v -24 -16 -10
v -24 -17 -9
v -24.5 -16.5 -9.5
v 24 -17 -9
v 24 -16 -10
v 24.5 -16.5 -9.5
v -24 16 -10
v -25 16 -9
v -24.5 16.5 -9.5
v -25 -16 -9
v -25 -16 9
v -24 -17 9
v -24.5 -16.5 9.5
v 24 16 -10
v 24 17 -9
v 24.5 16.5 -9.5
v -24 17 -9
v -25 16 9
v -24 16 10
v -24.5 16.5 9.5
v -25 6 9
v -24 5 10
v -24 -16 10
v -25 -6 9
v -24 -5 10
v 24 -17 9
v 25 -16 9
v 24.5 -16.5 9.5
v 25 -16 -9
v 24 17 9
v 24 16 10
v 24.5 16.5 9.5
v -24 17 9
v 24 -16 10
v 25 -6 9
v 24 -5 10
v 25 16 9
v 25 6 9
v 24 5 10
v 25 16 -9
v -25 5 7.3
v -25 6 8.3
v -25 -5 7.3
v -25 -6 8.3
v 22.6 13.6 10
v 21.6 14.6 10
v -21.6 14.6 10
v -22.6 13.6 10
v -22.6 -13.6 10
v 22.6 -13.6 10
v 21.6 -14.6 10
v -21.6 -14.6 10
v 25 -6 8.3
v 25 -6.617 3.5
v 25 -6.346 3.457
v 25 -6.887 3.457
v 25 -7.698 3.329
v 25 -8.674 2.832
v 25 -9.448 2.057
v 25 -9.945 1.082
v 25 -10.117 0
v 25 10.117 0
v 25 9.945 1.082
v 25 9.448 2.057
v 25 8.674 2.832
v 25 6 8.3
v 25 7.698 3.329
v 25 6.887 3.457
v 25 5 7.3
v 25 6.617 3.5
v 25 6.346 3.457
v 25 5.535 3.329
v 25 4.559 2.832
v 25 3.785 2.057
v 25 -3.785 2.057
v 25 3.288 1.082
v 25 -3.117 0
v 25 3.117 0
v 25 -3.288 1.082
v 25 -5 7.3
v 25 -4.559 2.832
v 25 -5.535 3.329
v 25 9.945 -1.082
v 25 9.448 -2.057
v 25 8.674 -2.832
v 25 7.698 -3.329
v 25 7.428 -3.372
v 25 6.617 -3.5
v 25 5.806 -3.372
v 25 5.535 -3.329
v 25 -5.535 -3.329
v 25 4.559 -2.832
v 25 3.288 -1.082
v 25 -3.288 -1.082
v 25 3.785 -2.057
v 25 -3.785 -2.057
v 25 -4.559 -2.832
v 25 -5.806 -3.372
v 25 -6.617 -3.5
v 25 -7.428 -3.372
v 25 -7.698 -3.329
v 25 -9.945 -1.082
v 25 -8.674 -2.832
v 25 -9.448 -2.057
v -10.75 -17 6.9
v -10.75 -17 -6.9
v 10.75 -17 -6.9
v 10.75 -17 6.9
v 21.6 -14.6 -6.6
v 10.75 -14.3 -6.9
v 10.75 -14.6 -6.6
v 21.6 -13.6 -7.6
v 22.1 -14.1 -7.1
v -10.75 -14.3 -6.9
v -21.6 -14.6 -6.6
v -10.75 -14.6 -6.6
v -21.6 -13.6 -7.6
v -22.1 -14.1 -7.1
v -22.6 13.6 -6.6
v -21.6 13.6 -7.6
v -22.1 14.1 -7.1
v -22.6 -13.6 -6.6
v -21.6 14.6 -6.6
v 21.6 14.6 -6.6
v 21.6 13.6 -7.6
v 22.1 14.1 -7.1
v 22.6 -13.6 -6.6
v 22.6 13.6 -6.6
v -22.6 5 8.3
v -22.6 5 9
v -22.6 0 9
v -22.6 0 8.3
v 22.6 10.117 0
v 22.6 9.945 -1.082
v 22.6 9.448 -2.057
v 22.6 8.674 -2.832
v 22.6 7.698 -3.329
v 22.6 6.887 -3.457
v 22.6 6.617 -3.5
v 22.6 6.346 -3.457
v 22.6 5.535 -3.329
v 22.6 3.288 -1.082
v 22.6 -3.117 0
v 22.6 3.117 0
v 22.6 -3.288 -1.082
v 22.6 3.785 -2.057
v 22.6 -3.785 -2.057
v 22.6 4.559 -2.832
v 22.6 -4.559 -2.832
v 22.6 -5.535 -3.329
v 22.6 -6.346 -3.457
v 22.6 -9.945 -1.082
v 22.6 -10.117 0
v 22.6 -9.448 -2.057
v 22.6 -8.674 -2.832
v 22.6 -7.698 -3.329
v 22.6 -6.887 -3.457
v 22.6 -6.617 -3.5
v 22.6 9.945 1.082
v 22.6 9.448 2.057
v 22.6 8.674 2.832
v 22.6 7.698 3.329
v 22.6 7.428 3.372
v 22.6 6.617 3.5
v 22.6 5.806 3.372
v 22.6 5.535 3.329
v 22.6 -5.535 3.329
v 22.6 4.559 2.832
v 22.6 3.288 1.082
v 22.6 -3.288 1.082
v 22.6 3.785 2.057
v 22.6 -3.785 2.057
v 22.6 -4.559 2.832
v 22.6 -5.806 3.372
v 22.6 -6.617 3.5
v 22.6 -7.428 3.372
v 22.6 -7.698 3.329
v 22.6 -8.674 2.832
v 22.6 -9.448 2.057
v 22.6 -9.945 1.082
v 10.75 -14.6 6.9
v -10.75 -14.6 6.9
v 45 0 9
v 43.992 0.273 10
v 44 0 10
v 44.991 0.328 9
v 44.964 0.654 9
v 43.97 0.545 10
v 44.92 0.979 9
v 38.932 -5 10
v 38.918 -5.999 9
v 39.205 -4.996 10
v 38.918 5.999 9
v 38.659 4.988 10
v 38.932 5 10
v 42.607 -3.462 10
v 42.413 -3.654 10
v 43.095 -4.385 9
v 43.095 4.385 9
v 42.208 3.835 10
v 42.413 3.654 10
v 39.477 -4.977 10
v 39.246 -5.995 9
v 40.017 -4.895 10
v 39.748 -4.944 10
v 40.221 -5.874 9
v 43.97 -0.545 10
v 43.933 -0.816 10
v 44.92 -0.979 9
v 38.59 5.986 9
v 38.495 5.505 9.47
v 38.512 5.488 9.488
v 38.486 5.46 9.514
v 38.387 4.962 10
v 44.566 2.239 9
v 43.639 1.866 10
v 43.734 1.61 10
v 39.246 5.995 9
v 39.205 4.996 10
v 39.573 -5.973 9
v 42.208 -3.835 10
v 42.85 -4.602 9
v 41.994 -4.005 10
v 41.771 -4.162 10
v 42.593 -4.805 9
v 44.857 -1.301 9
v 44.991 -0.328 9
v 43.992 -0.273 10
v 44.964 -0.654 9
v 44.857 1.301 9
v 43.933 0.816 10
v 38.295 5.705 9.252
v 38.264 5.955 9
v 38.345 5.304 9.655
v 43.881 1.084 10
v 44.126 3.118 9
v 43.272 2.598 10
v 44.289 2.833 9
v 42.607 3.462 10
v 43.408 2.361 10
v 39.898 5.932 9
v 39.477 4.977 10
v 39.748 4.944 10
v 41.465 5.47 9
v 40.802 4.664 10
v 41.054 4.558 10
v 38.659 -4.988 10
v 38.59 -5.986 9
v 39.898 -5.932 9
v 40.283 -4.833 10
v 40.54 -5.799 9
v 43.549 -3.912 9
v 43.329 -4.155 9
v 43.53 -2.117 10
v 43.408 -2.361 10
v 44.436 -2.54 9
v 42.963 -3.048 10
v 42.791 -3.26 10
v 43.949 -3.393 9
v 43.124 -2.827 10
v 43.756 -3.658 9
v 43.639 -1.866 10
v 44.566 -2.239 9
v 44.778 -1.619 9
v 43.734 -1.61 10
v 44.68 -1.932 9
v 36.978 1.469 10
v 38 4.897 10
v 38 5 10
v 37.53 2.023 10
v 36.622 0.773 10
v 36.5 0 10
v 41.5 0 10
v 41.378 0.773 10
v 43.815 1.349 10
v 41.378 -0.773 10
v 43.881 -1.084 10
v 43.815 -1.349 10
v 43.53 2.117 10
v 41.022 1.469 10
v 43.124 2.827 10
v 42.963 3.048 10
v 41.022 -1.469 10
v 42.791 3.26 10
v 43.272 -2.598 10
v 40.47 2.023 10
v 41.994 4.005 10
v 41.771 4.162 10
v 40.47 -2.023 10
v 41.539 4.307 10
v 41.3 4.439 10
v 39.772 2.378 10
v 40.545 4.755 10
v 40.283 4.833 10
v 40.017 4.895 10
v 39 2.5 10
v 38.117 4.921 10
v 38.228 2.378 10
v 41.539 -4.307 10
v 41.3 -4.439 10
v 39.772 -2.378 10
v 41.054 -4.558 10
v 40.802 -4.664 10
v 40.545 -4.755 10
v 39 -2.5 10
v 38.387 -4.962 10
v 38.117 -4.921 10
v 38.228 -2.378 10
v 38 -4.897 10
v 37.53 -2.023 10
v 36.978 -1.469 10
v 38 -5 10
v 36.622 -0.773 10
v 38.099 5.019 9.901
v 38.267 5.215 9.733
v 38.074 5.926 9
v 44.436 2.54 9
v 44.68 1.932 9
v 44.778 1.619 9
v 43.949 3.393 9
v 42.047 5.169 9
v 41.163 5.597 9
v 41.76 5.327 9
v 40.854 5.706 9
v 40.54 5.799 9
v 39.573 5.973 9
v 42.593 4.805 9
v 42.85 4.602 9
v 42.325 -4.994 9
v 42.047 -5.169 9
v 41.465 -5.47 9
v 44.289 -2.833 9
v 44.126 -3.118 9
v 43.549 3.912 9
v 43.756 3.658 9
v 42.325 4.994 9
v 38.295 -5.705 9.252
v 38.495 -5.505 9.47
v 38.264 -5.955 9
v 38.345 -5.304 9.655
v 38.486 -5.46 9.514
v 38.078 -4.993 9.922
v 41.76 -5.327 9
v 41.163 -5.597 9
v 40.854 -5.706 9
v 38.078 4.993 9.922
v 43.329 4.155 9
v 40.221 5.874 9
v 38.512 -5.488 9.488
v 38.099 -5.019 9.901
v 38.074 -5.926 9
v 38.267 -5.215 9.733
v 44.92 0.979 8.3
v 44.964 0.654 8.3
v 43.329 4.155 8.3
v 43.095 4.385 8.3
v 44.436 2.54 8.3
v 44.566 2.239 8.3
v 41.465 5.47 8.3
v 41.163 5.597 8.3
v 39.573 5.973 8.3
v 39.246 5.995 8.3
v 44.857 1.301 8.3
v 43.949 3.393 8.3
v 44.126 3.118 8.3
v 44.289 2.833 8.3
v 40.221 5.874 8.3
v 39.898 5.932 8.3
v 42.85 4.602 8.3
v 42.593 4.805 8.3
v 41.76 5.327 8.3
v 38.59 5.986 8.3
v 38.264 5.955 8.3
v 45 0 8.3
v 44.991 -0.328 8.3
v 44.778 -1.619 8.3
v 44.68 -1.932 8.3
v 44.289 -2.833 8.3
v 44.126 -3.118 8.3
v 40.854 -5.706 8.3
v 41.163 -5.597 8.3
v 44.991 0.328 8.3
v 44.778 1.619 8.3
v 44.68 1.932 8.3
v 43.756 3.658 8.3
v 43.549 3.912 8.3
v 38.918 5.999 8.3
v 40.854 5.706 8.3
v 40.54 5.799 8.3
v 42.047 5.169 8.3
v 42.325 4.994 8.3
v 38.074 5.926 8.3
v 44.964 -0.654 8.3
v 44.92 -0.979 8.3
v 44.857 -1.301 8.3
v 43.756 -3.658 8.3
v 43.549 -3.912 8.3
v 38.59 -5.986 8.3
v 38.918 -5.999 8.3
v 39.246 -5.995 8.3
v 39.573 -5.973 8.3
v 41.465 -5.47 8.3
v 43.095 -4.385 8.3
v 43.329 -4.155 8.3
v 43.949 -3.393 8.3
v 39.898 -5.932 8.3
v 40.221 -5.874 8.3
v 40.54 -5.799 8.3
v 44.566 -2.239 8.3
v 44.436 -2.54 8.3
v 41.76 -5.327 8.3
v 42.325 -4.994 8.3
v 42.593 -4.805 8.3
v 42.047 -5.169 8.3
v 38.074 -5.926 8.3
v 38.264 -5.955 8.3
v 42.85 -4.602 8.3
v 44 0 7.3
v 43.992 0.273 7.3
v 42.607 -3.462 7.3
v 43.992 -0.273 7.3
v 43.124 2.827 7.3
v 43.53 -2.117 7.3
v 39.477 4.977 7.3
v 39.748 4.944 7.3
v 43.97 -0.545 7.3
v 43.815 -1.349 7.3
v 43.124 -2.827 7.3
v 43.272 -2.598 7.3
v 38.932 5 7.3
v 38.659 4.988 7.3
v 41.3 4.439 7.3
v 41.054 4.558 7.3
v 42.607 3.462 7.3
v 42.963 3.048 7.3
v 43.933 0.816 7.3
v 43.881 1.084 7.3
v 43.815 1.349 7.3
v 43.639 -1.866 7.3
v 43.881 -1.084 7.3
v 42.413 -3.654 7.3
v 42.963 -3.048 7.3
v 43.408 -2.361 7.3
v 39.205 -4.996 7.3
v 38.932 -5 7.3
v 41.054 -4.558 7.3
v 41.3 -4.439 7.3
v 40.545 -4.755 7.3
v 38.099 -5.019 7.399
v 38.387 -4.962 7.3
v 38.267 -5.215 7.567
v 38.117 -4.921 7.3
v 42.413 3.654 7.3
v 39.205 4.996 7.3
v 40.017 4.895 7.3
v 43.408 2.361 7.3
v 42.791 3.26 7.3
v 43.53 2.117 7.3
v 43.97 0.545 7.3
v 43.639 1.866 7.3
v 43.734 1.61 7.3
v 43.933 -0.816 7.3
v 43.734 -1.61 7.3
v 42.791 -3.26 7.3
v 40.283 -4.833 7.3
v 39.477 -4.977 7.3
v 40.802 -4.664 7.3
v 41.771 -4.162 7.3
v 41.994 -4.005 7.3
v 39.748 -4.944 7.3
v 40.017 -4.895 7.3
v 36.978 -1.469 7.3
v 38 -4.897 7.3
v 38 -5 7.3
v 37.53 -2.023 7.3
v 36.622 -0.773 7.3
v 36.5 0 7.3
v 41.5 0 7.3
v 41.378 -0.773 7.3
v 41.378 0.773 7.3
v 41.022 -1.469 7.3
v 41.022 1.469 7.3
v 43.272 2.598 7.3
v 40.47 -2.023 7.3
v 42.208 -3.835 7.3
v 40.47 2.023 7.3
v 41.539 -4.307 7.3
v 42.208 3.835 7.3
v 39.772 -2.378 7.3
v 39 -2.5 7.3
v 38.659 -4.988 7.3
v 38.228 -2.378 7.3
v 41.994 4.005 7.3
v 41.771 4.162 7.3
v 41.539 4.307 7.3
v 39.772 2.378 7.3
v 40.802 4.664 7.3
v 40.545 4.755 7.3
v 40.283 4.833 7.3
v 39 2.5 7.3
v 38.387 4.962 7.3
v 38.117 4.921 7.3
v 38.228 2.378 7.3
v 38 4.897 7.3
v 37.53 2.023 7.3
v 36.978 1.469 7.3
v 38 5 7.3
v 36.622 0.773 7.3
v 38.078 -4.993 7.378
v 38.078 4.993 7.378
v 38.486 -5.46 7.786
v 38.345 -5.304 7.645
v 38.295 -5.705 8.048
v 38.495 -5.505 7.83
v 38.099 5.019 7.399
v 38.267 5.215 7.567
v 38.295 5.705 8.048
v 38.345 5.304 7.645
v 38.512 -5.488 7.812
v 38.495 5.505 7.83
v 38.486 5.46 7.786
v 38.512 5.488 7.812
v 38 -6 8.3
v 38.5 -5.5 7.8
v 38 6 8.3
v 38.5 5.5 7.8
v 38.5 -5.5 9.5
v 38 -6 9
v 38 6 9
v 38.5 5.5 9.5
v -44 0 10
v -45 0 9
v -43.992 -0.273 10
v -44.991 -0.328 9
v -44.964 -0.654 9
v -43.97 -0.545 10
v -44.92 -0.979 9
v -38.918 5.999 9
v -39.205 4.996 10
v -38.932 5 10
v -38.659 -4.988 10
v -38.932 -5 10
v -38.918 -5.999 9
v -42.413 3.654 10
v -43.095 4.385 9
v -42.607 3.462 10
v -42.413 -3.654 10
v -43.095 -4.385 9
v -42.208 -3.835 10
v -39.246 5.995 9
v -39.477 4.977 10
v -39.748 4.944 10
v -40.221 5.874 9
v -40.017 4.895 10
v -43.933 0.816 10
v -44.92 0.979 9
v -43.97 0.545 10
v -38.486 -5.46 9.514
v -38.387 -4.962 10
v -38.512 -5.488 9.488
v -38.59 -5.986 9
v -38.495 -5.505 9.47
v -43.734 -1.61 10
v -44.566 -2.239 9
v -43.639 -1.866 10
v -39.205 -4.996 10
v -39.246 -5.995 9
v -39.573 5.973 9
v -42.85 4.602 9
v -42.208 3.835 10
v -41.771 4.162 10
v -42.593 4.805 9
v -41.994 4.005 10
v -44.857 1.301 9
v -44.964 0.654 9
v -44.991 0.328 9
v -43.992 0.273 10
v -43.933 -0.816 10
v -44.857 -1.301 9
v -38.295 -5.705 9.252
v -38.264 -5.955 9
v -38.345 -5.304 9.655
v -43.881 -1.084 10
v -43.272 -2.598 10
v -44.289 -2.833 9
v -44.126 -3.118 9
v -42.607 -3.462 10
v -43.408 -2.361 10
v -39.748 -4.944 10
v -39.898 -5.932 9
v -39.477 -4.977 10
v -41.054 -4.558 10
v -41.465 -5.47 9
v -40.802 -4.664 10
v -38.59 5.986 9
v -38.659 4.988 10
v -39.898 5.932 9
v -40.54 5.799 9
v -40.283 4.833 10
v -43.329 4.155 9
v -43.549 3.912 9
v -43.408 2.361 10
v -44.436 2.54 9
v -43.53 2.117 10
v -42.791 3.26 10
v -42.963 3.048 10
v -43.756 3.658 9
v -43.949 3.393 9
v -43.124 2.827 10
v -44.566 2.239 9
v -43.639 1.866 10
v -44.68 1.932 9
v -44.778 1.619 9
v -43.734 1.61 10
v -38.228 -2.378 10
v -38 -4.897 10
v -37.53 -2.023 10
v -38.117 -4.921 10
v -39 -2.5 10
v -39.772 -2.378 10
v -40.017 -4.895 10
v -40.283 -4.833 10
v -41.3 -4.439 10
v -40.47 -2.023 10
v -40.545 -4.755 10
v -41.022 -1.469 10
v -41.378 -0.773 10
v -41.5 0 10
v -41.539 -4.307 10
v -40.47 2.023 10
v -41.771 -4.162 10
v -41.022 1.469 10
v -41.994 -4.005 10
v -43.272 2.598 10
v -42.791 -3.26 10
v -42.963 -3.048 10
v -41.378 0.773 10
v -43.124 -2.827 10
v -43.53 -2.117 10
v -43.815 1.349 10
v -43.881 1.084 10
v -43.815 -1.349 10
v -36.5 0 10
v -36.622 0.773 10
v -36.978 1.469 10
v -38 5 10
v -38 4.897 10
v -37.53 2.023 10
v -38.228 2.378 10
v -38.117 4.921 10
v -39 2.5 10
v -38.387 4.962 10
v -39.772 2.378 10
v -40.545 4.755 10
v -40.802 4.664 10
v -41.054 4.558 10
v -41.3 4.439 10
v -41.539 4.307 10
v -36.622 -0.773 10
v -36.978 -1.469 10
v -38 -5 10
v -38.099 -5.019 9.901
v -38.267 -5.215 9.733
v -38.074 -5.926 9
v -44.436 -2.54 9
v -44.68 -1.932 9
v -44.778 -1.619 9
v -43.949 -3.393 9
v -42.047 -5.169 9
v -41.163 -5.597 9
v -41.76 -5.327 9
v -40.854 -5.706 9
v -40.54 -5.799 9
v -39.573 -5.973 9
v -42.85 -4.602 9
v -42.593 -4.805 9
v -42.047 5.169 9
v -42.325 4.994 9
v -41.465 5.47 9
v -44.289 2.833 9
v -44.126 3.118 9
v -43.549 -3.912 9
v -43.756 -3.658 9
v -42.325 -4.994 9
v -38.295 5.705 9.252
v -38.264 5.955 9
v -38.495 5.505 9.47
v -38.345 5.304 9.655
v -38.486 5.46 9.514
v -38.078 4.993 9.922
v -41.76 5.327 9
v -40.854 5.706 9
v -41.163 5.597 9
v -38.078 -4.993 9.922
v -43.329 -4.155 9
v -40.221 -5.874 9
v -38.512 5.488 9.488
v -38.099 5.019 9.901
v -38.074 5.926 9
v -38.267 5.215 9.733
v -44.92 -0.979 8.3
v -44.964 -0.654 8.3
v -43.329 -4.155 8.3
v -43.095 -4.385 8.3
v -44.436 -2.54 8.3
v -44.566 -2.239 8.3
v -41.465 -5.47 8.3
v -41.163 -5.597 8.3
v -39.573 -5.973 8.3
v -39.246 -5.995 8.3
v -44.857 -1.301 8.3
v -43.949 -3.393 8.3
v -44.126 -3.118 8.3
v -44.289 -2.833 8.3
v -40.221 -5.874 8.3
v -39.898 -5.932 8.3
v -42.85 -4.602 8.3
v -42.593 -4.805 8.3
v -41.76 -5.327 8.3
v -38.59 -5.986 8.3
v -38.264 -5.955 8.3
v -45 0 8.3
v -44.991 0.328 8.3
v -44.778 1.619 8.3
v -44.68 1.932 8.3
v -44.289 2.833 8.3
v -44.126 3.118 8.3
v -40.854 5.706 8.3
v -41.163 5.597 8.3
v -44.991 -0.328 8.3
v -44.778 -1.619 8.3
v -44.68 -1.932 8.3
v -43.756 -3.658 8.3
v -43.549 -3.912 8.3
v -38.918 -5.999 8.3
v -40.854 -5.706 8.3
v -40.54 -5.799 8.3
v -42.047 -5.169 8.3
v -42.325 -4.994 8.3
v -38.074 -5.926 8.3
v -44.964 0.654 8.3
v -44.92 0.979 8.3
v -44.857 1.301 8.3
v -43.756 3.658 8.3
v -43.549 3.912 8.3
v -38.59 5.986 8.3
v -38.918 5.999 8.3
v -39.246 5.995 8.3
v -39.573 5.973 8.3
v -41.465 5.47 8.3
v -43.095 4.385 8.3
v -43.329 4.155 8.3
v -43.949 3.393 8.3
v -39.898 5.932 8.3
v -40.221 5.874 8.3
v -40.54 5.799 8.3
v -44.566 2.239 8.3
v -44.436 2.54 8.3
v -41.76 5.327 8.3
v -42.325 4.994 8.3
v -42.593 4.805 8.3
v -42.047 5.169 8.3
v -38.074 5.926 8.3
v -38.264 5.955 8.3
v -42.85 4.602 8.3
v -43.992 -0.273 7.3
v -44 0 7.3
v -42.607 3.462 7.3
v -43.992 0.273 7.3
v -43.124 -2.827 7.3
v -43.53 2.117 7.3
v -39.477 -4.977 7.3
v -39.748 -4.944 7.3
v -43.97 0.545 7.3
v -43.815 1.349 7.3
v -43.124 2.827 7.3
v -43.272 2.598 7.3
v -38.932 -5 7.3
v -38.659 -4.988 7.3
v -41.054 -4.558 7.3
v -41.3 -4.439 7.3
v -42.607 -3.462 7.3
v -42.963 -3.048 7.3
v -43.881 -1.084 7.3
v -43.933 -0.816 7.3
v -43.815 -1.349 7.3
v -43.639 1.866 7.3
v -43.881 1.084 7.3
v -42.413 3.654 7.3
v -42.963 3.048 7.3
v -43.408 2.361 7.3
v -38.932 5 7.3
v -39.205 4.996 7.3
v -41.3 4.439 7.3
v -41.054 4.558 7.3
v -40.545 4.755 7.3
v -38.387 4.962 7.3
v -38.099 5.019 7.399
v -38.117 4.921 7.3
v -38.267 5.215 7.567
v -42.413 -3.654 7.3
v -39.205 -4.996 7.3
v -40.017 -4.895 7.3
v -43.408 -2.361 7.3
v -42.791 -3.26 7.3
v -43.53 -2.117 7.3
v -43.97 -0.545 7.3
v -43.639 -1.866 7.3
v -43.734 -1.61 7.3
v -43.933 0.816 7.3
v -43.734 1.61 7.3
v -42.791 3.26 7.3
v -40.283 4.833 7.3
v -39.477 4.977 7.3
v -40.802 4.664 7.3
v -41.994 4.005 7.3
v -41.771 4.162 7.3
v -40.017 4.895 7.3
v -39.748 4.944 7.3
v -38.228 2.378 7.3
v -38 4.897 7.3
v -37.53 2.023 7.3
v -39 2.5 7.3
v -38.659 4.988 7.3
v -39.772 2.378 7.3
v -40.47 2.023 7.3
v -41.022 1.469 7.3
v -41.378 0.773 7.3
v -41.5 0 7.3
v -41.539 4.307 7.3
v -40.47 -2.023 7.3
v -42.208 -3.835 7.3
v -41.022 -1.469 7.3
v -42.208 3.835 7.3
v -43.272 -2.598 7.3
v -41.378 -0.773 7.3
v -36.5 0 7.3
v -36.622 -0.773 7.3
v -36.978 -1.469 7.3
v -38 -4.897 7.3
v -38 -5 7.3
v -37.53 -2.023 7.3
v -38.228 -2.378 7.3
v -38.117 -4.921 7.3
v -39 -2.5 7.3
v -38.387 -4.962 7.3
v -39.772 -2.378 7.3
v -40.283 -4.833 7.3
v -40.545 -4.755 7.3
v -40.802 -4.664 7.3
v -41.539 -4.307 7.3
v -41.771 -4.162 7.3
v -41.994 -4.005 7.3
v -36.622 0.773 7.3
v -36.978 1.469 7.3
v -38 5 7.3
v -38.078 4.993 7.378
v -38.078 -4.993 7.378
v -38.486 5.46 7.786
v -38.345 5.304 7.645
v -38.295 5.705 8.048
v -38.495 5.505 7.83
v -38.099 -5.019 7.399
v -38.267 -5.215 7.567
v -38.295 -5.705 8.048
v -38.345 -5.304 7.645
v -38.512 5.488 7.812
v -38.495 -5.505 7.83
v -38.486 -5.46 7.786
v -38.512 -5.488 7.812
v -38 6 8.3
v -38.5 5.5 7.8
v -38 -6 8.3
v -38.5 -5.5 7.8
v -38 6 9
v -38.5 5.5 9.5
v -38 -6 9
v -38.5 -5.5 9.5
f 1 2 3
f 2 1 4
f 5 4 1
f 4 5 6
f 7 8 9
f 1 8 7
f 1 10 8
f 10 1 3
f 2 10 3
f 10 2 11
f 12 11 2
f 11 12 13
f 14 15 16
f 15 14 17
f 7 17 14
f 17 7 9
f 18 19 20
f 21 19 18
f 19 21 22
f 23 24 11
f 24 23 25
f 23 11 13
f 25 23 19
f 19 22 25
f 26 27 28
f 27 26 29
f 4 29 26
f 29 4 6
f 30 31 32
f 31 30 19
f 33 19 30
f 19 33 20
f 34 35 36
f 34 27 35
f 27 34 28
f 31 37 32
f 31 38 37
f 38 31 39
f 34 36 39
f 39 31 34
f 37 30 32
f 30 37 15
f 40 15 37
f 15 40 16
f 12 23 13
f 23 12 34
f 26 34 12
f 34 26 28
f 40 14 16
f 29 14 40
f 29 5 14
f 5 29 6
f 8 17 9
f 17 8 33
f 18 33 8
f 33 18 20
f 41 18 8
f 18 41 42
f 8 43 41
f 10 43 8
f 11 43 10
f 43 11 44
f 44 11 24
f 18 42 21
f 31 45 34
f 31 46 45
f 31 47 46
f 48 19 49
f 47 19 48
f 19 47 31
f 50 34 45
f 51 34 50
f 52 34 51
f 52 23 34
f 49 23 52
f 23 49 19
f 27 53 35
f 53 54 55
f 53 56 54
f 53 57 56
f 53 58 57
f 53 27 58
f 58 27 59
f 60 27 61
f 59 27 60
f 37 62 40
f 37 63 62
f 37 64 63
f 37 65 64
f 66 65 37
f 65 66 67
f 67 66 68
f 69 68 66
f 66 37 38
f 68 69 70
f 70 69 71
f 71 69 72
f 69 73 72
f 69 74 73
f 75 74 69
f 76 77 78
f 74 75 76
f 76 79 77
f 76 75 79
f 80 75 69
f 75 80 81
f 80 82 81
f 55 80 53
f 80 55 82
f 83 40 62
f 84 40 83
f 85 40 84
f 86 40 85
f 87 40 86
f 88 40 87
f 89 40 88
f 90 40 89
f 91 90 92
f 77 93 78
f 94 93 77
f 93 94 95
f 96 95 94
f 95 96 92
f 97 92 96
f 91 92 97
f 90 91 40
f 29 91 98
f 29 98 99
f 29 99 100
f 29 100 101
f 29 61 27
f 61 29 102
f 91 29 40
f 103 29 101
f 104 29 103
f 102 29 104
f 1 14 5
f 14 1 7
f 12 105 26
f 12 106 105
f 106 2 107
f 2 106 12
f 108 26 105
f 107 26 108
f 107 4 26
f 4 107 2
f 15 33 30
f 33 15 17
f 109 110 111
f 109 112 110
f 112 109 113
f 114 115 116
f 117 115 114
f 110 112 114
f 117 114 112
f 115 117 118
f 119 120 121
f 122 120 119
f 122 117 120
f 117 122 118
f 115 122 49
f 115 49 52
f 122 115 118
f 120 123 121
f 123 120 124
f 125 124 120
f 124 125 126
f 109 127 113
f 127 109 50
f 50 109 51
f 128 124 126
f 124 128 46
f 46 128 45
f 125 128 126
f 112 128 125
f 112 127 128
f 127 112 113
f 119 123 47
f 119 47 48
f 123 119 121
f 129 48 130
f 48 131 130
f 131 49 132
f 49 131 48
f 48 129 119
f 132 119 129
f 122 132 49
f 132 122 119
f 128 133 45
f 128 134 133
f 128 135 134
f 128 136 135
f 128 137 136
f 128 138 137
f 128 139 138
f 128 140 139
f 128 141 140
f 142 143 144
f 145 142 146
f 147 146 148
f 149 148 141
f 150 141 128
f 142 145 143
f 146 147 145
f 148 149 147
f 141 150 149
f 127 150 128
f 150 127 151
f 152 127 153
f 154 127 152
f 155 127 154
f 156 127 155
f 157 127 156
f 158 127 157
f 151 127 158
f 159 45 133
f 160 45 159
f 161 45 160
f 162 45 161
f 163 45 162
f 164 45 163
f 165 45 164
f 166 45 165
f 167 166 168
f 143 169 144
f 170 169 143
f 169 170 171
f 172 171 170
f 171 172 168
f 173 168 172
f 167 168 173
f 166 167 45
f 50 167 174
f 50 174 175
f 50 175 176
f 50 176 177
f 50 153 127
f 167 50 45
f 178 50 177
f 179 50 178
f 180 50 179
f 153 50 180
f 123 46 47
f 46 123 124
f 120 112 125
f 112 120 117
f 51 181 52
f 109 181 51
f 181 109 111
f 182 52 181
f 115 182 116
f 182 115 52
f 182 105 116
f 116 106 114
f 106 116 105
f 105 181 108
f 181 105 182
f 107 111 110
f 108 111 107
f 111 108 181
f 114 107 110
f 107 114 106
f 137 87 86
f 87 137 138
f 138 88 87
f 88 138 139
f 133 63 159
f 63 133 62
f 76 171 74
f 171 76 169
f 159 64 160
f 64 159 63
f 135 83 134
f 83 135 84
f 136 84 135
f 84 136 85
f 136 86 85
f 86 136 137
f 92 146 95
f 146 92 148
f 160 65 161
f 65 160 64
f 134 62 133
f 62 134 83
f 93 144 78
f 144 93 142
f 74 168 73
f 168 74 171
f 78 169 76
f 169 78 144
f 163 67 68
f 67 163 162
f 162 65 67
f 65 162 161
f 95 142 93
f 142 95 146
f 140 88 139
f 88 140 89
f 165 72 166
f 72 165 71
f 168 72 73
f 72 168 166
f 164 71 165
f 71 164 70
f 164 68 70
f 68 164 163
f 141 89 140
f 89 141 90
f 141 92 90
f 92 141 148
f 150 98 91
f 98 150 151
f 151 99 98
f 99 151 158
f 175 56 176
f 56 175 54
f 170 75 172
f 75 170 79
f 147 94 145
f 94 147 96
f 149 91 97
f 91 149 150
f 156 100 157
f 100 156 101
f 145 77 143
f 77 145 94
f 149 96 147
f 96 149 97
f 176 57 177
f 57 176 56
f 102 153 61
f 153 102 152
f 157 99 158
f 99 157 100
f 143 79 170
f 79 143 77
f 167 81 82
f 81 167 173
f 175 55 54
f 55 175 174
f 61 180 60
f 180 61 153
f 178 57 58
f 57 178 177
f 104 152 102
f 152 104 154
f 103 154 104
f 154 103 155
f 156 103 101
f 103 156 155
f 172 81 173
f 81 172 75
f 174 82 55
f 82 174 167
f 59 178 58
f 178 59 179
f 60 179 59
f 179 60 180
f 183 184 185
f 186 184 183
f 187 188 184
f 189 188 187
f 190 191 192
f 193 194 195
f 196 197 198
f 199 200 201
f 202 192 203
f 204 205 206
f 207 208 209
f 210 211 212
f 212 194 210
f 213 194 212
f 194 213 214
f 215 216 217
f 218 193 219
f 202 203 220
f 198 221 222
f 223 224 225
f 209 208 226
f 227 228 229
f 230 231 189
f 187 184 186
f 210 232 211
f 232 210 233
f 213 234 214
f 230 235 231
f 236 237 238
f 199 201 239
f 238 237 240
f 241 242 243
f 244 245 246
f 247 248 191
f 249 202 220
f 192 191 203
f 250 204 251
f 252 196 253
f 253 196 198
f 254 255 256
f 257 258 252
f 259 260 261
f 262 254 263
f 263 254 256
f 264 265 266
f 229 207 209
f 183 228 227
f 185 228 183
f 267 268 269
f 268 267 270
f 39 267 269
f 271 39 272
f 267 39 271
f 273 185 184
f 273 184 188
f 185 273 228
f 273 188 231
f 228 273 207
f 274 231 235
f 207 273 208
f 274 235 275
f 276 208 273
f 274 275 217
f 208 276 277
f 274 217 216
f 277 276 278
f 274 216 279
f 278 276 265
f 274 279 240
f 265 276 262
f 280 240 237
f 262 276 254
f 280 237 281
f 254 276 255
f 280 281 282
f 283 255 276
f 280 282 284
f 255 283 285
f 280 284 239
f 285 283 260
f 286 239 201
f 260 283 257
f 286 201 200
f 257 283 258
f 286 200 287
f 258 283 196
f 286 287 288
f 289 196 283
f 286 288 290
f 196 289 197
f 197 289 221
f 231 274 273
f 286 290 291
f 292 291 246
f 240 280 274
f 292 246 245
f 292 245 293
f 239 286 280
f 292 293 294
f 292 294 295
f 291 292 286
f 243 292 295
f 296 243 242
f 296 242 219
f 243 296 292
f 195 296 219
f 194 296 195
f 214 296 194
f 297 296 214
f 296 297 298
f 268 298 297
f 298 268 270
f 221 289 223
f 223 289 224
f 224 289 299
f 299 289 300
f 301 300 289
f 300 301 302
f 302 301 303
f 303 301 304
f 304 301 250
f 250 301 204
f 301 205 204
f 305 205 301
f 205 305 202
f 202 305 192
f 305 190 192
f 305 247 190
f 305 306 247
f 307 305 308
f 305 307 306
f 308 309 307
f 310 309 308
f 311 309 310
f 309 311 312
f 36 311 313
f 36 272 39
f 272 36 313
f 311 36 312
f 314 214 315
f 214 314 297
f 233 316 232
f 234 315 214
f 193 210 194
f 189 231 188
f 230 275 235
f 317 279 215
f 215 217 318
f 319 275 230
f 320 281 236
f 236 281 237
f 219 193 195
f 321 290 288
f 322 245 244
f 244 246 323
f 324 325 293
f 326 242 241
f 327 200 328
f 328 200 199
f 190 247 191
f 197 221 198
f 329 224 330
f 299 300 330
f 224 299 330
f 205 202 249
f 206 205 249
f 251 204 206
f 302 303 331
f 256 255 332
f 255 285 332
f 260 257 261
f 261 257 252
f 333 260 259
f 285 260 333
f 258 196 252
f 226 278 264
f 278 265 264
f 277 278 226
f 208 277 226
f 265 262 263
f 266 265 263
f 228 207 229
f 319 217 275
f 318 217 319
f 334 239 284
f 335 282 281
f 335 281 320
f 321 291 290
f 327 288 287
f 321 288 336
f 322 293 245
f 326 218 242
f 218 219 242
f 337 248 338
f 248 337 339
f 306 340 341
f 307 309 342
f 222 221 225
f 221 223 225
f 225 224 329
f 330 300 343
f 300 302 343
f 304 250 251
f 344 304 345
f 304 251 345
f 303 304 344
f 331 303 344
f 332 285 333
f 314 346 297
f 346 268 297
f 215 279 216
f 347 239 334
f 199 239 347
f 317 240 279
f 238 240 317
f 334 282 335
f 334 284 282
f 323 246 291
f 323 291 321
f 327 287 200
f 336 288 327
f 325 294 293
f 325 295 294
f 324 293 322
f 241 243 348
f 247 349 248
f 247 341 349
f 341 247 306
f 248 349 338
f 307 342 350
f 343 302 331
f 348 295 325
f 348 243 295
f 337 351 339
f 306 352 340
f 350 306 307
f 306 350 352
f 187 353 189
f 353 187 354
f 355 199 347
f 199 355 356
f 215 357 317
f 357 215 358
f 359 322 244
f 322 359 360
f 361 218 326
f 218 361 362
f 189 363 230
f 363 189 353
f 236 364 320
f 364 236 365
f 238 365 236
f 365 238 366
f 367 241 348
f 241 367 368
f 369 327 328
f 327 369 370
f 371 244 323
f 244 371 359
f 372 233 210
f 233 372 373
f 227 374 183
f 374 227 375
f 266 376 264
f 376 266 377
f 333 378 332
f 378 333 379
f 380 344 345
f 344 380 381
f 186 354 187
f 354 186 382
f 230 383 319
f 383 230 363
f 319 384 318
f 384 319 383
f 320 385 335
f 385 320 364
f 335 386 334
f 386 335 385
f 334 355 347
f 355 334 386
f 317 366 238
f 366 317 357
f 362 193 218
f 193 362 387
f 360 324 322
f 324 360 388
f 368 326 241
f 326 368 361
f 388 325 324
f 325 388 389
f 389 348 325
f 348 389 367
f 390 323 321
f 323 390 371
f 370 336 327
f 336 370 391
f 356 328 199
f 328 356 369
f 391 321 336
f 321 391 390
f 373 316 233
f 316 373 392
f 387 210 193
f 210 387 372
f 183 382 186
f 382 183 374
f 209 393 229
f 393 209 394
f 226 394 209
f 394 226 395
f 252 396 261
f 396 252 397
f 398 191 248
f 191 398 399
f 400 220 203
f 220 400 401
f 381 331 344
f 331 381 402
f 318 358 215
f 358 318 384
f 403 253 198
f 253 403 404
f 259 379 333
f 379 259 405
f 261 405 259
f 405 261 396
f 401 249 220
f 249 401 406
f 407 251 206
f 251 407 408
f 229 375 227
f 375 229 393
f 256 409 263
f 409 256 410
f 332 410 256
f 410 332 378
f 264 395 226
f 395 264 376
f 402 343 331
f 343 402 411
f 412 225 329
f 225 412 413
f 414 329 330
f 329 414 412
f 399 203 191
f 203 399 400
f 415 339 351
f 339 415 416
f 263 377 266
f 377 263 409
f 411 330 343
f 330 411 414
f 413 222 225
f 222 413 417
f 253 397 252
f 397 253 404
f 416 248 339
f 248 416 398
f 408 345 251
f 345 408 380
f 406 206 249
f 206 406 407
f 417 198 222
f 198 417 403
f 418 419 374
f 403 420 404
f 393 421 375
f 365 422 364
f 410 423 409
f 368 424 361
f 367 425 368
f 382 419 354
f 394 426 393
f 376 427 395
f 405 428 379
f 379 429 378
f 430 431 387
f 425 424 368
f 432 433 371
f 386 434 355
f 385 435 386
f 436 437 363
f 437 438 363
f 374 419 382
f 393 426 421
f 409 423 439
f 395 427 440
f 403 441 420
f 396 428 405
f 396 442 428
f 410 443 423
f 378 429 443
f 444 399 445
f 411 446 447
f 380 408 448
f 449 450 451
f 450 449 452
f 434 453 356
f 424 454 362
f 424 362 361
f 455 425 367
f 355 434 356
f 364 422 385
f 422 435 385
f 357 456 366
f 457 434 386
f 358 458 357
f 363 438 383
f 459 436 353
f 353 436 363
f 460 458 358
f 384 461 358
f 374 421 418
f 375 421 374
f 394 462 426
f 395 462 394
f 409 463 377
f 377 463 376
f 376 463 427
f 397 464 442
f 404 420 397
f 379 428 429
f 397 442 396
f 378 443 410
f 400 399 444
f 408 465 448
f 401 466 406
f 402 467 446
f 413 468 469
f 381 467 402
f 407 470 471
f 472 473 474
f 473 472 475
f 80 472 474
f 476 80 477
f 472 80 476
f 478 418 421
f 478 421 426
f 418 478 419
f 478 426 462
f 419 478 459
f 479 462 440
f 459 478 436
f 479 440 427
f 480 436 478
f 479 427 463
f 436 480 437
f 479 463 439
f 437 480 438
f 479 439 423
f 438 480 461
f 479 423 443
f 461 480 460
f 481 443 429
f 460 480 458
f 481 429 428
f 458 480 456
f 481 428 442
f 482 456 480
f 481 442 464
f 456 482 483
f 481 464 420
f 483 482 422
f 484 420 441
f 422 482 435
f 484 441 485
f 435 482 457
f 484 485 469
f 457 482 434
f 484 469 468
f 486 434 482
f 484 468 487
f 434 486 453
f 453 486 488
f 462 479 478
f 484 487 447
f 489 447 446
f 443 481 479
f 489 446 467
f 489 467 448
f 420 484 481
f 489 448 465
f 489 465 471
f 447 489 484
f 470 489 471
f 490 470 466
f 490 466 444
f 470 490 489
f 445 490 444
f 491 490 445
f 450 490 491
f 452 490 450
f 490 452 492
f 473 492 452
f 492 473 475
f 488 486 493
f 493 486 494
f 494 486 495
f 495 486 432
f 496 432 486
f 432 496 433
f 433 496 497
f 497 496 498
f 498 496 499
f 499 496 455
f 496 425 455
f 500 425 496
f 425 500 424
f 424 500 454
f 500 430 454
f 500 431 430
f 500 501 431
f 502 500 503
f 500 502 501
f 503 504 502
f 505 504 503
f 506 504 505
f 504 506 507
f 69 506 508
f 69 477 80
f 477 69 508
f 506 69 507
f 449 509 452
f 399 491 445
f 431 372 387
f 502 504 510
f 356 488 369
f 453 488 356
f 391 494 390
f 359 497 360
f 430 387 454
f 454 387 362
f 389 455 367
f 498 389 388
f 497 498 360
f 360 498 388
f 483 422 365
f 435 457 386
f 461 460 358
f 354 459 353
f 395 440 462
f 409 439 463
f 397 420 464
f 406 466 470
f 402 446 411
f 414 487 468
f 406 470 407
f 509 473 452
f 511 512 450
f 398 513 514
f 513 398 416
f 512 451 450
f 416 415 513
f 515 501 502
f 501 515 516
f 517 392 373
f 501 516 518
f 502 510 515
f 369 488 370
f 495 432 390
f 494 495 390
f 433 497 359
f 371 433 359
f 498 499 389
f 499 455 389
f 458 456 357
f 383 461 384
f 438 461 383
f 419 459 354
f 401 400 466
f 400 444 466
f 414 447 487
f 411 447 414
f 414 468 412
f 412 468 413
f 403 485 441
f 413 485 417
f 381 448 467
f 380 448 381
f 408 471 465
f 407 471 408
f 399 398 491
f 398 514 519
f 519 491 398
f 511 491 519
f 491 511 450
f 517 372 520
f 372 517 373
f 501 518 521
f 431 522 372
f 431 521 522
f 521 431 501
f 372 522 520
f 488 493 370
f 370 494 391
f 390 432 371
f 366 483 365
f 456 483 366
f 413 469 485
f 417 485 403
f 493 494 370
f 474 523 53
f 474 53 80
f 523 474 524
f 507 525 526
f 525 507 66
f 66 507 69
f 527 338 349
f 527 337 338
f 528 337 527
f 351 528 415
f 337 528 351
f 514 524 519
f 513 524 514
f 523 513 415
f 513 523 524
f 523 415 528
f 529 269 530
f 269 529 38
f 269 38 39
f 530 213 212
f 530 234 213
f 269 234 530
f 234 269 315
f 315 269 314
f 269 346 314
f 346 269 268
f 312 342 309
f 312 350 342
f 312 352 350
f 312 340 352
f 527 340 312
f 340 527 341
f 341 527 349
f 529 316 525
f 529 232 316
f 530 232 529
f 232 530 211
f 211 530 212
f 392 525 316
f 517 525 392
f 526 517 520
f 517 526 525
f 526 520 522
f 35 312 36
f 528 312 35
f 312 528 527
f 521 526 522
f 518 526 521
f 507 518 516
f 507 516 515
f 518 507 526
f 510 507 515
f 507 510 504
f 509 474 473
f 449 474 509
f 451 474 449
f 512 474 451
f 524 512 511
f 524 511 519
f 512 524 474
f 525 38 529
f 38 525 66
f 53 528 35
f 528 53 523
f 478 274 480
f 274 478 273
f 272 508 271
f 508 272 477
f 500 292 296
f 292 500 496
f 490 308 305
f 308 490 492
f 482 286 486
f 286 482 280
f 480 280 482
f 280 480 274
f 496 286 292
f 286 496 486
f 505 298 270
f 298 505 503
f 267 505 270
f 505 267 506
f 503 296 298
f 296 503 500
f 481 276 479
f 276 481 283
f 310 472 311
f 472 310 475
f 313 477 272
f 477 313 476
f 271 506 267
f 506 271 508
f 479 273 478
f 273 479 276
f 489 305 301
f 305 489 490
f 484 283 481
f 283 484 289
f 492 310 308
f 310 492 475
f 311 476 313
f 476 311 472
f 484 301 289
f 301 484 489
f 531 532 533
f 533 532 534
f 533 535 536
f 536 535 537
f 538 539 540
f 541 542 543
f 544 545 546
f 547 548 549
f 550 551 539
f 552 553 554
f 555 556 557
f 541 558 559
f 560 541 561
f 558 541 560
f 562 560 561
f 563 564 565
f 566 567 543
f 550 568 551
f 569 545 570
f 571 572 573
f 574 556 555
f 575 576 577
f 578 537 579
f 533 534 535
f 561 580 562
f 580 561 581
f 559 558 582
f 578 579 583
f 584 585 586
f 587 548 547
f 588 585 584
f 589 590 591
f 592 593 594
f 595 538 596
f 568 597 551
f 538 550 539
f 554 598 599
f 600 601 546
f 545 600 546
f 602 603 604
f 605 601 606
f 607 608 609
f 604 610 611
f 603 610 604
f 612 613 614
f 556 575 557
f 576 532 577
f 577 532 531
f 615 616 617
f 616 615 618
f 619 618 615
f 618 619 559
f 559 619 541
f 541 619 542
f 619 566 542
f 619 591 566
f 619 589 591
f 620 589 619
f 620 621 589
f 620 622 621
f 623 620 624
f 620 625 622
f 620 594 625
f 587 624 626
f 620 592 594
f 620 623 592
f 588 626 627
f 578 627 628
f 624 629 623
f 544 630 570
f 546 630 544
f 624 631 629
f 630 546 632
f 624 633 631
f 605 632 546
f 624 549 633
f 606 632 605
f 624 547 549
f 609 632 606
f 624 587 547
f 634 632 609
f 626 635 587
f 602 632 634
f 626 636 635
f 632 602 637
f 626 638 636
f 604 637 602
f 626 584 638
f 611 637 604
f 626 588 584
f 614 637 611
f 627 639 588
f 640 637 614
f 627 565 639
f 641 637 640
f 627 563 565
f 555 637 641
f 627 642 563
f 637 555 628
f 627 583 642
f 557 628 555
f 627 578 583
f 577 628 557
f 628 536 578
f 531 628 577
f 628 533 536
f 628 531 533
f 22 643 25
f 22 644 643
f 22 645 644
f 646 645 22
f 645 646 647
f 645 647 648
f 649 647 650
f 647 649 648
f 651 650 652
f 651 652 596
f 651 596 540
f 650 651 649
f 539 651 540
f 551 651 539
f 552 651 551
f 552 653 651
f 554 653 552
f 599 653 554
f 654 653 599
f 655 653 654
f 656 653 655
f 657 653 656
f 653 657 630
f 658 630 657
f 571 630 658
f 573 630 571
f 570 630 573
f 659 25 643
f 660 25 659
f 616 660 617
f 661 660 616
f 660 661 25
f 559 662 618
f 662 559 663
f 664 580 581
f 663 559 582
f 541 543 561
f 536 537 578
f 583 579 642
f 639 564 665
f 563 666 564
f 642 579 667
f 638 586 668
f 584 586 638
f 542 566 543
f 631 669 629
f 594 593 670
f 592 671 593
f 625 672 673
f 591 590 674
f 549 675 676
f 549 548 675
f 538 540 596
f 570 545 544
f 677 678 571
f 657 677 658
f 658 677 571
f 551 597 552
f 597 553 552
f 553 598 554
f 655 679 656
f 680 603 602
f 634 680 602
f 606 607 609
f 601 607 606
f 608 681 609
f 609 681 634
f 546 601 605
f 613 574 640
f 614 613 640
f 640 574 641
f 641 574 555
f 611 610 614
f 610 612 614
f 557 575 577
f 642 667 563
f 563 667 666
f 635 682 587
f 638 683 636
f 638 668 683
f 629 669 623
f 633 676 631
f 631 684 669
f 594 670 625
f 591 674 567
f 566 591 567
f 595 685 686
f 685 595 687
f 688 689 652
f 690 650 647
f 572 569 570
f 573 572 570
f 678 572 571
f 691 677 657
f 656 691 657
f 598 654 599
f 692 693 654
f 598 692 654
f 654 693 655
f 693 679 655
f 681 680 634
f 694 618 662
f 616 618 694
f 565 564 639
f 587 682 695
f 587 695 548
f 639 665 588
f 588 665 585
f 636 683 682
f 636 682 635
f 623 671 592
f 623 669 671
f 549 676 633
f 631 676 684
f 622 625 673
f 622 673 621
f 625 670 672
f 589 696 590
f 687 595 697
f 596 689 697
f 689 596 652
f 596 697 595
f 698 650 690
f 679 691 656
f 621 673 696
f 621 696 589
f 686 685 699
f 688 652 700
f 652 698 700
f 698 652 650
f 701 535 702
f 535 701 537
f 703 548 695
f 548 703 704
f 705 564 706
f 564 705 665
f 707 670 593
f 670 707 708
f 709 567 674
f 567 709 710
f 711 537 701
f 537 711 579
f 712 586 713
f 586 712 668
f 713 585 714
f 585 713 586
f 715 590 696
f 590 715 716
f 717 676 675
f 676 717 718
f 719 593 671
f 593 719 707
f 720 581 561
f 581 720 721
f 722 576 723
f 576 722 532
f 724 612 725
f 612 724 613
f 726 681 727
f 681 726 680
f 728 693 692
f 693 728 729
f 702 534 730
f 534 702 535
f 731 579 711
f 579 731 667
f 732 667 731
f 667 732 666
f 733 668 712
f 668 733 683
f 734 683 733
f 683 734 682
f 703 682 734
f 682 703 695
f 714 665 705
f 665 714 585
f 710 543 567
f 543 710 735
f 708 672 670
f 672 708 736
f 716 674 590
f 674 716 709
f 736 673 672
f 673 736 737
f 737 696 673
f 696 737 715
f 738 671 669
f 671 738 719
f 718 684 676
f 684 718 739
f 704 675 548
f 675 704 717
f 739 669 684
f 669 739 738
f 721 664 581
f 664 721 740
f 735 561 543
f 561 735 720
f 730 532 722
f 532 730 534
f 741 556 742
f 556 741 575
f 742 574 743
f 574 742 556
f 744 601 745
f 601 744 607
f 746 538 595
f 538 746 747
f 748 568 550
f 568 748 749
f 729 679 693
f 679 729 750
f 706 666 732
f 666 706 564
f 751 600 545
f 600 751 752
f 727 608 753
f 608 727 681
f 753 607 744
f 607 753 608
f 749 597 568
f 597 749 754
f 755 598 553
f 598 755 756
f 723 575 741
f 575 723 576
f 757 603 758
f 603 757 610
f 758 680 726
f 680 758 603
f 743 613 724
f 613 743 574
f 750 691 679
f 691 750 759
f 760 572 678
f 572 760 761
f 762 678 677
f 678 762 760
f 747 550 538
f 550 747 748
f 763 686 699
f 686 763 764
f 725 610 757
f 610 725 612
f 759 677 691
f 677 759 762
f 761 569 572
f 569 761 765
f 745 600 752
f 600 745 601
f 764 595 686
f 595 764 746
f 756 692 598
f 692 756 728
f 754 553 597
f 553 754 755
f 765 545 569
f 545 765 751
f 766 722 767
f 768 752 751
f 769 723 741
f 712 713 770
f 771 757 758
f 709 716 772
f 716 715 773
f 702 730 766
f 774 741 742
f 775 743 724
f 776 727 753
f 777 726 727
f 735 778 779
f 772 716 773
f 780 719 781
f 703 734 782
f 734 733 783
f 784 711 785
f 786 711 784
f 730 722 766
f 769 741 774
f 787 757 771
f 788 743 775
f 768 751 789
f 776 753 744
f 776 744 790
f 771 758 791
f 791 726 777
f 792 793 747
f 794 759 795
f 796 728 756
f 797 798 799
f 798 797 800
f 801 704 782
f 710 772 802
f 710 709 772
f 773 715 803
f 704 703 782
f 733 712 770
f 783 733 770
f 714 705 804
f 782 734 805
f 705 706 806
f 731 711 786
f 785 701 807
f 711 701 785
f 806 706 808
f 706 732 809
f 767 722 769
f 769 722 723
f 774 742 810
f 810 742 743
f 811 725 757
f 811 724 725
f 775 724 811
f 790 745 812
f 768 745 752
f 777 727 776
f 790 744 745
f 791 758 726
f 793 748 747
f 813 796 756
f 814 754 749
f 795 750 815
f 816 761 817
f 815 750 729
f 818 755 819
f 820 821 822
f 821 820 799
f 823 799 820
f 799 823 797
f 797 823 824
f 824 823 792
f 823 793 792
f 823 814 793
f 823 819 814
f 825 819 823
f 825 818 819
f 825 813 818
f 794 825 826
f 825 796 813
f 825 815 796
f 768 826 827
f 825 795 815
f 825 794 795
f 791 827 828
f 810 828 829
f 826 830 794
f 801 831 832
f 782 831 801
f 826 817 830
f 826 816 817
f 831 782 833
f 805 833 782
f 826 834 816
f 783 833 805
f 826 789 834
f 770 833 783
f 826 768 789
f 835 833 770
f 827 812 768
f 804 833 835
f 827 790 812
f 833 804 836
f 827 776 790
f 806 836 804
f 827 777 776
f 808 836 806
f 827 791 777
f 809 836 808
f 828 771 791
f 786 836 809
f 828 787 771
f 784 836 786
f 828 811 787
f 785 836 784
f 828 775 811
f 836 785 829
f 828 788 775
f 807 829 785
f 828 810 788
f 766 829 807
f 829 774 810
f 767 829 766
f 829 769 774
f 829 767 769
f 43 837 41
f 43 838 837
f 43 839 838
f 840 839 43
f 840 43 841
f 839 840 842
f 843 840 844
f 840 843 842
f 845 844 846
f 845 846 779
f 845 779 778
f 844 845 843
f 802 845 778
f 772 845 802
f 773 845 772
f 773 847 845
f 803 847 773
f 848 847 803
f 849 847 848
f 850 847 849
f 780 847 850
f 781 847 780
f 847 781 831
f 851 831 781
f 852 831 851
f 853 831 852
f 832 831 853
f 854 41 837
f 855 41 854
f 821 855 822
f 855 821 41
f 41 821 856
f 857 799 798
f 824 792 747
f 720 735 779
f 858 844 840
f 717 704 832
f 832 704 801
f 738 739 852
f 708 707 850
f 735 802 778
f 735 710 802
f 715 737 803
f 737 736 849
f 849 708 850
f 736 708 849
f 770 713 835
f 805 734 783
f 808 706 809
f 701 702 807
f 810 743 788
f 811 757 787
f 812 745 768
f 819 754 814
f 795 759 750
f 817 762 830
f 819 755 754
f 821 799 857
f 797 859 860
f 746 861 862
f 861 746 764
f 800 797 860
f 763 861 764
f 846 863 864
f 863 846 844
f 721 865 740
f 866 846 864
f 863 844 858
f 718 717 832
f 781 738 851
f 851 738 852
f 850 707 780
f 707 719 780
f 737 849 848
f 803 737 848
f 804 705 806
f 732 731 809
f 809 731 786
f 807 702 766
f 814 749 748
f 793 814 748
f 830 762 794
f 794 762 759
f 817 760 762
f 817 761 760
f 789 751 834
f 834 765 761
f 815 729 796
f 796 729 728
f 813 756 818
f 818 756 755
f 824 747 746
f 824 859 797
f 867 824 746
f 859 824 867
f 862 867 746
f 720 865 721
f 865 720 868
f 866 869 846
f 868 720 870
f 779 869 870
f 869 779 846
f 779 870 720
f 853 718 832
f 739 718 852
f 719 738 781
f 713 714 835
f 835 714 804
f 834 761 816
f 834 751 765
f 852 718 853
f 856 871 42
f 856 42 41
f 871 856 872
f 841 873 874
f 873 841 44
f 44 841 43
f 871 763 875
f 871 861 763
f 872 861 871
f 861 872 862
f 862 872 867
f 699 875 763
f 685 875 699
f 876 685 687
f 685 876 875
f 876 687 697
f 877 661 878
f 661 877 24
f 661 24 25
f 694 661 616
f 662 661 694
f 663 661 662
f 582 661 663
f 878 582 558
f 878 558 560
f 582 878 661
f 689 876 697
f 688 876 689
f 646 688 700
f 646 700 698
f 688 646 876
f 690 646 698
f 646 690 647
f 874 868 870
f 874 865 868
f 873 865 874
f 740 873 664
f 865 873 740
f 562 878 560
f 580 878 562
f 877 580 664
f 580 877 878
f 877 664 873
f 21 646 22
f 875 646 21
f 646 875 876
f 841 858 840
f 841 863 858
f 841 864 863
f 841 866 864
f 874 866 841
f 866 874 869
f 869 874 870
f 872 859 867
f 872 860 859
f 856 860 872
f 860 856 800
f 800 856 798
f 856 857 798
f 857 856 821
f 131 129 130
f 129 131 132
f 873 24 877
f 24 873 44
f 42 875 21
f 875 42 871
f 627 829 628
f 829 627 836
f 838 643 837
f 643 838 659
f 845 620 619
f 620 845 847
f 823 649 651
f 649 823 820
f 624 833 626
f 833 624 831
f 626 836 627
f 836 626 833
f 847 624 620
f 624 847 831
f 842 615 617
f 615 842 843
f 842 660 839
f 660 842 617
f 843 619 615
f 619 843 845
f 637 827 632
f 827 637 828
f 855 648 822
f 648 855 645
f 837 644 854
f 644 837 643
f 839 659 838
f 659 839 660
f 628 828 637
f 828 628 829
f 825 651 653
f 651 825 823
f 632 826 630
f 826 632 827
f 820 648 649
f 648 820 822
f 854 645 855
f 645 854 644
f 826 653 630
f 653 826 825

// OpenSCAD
// Small box to hold an on-off button
use <Chamfer.scad>

$fn = 20;

// Outer measurements.
box_length = 50; // x
box_width = 34;  // y
box_height = 20; // z

wall_thickness = 2.4;
wire_radius = 3 + 0.5; // Radius of wire going into the box.
wire_distance = (box_width - 2*wall_thickness)/3 + wire_radius; // Distance between the wire holes;

// Measurements of the contact
cutout_length = 21 + 0.5;
cutout_height = 13 + 0.8;

// Mounts
mount_outer_radius = 6;
mount_inner_radius = 2 + 0.5; // For the screws
mount_thickness = 2.7;
screw_head_radius = 4 + 10;

// Hole in the side of the box.
module wire_hole() {
    translate([box_length/2-wall_thickness/2,0,0])
    rotate([0,90,0])
    cylinder(h=wall_thickness*2, r = wire_radius, center = true);
}

// Centered chamferCylinder
module ccc(h, r) {
    translate([0,0,-h/2])
    chamferCylinder(height = h, radius = r);
}

module cccube(x, y, z) {
    translate([-x/2, -y/2, -z/2])
    chamferCube(sizeX = x, sizeY = y, sizeZ = z);
}

module mount() {
    translate([0,0,-mount_thickness/2+box_height/2])
    difference() {
        union() {
            ccc(h=mount_thickness, r = mount_outer_radius);
            translate([-(screw_head_radius+wall_thickness)/2,0,0])
            cccube(screw_head_radius+wall_thickness, mount_outer_radius*2, mount_thickness);
        }
        cylinder(h = mount_thickness * 2, r = mount_inner_radius, center = true);
    }
}

module mounts() {
    translate([box_length/2+screw_head_radius, 0, 0])
    mount();
    rotate([0,0,180])
    translate([box_length/2+screw_head_radius, 0, 0])
    mount();
    
}

// The main module
module main() {
    
    difference() {
        cccube(box_length, box_width, box_height);
        
        // Make box hollow
        translate([0,0,wall_thickness])
        cccube(box_length - 2*wall_thickness,
                box_width - 2*wall_thickness,
                box_height);
        
        // Make the cutout for the contact
        translate([0, -box_width/2.0+wall_thickness/2.0, 0])
        cube([cutout_length, wall_thickness * 2, cutout_height], center = true);
        
        // And, the cutout for the wires. Use two holes, makes the most snug fit.
        translate([0, wire_distance / 2, 0]) wire_hole();
        translate([0, -wire_distance / 2, 0]) wire_hole();
    }
}


main();
mounts();
